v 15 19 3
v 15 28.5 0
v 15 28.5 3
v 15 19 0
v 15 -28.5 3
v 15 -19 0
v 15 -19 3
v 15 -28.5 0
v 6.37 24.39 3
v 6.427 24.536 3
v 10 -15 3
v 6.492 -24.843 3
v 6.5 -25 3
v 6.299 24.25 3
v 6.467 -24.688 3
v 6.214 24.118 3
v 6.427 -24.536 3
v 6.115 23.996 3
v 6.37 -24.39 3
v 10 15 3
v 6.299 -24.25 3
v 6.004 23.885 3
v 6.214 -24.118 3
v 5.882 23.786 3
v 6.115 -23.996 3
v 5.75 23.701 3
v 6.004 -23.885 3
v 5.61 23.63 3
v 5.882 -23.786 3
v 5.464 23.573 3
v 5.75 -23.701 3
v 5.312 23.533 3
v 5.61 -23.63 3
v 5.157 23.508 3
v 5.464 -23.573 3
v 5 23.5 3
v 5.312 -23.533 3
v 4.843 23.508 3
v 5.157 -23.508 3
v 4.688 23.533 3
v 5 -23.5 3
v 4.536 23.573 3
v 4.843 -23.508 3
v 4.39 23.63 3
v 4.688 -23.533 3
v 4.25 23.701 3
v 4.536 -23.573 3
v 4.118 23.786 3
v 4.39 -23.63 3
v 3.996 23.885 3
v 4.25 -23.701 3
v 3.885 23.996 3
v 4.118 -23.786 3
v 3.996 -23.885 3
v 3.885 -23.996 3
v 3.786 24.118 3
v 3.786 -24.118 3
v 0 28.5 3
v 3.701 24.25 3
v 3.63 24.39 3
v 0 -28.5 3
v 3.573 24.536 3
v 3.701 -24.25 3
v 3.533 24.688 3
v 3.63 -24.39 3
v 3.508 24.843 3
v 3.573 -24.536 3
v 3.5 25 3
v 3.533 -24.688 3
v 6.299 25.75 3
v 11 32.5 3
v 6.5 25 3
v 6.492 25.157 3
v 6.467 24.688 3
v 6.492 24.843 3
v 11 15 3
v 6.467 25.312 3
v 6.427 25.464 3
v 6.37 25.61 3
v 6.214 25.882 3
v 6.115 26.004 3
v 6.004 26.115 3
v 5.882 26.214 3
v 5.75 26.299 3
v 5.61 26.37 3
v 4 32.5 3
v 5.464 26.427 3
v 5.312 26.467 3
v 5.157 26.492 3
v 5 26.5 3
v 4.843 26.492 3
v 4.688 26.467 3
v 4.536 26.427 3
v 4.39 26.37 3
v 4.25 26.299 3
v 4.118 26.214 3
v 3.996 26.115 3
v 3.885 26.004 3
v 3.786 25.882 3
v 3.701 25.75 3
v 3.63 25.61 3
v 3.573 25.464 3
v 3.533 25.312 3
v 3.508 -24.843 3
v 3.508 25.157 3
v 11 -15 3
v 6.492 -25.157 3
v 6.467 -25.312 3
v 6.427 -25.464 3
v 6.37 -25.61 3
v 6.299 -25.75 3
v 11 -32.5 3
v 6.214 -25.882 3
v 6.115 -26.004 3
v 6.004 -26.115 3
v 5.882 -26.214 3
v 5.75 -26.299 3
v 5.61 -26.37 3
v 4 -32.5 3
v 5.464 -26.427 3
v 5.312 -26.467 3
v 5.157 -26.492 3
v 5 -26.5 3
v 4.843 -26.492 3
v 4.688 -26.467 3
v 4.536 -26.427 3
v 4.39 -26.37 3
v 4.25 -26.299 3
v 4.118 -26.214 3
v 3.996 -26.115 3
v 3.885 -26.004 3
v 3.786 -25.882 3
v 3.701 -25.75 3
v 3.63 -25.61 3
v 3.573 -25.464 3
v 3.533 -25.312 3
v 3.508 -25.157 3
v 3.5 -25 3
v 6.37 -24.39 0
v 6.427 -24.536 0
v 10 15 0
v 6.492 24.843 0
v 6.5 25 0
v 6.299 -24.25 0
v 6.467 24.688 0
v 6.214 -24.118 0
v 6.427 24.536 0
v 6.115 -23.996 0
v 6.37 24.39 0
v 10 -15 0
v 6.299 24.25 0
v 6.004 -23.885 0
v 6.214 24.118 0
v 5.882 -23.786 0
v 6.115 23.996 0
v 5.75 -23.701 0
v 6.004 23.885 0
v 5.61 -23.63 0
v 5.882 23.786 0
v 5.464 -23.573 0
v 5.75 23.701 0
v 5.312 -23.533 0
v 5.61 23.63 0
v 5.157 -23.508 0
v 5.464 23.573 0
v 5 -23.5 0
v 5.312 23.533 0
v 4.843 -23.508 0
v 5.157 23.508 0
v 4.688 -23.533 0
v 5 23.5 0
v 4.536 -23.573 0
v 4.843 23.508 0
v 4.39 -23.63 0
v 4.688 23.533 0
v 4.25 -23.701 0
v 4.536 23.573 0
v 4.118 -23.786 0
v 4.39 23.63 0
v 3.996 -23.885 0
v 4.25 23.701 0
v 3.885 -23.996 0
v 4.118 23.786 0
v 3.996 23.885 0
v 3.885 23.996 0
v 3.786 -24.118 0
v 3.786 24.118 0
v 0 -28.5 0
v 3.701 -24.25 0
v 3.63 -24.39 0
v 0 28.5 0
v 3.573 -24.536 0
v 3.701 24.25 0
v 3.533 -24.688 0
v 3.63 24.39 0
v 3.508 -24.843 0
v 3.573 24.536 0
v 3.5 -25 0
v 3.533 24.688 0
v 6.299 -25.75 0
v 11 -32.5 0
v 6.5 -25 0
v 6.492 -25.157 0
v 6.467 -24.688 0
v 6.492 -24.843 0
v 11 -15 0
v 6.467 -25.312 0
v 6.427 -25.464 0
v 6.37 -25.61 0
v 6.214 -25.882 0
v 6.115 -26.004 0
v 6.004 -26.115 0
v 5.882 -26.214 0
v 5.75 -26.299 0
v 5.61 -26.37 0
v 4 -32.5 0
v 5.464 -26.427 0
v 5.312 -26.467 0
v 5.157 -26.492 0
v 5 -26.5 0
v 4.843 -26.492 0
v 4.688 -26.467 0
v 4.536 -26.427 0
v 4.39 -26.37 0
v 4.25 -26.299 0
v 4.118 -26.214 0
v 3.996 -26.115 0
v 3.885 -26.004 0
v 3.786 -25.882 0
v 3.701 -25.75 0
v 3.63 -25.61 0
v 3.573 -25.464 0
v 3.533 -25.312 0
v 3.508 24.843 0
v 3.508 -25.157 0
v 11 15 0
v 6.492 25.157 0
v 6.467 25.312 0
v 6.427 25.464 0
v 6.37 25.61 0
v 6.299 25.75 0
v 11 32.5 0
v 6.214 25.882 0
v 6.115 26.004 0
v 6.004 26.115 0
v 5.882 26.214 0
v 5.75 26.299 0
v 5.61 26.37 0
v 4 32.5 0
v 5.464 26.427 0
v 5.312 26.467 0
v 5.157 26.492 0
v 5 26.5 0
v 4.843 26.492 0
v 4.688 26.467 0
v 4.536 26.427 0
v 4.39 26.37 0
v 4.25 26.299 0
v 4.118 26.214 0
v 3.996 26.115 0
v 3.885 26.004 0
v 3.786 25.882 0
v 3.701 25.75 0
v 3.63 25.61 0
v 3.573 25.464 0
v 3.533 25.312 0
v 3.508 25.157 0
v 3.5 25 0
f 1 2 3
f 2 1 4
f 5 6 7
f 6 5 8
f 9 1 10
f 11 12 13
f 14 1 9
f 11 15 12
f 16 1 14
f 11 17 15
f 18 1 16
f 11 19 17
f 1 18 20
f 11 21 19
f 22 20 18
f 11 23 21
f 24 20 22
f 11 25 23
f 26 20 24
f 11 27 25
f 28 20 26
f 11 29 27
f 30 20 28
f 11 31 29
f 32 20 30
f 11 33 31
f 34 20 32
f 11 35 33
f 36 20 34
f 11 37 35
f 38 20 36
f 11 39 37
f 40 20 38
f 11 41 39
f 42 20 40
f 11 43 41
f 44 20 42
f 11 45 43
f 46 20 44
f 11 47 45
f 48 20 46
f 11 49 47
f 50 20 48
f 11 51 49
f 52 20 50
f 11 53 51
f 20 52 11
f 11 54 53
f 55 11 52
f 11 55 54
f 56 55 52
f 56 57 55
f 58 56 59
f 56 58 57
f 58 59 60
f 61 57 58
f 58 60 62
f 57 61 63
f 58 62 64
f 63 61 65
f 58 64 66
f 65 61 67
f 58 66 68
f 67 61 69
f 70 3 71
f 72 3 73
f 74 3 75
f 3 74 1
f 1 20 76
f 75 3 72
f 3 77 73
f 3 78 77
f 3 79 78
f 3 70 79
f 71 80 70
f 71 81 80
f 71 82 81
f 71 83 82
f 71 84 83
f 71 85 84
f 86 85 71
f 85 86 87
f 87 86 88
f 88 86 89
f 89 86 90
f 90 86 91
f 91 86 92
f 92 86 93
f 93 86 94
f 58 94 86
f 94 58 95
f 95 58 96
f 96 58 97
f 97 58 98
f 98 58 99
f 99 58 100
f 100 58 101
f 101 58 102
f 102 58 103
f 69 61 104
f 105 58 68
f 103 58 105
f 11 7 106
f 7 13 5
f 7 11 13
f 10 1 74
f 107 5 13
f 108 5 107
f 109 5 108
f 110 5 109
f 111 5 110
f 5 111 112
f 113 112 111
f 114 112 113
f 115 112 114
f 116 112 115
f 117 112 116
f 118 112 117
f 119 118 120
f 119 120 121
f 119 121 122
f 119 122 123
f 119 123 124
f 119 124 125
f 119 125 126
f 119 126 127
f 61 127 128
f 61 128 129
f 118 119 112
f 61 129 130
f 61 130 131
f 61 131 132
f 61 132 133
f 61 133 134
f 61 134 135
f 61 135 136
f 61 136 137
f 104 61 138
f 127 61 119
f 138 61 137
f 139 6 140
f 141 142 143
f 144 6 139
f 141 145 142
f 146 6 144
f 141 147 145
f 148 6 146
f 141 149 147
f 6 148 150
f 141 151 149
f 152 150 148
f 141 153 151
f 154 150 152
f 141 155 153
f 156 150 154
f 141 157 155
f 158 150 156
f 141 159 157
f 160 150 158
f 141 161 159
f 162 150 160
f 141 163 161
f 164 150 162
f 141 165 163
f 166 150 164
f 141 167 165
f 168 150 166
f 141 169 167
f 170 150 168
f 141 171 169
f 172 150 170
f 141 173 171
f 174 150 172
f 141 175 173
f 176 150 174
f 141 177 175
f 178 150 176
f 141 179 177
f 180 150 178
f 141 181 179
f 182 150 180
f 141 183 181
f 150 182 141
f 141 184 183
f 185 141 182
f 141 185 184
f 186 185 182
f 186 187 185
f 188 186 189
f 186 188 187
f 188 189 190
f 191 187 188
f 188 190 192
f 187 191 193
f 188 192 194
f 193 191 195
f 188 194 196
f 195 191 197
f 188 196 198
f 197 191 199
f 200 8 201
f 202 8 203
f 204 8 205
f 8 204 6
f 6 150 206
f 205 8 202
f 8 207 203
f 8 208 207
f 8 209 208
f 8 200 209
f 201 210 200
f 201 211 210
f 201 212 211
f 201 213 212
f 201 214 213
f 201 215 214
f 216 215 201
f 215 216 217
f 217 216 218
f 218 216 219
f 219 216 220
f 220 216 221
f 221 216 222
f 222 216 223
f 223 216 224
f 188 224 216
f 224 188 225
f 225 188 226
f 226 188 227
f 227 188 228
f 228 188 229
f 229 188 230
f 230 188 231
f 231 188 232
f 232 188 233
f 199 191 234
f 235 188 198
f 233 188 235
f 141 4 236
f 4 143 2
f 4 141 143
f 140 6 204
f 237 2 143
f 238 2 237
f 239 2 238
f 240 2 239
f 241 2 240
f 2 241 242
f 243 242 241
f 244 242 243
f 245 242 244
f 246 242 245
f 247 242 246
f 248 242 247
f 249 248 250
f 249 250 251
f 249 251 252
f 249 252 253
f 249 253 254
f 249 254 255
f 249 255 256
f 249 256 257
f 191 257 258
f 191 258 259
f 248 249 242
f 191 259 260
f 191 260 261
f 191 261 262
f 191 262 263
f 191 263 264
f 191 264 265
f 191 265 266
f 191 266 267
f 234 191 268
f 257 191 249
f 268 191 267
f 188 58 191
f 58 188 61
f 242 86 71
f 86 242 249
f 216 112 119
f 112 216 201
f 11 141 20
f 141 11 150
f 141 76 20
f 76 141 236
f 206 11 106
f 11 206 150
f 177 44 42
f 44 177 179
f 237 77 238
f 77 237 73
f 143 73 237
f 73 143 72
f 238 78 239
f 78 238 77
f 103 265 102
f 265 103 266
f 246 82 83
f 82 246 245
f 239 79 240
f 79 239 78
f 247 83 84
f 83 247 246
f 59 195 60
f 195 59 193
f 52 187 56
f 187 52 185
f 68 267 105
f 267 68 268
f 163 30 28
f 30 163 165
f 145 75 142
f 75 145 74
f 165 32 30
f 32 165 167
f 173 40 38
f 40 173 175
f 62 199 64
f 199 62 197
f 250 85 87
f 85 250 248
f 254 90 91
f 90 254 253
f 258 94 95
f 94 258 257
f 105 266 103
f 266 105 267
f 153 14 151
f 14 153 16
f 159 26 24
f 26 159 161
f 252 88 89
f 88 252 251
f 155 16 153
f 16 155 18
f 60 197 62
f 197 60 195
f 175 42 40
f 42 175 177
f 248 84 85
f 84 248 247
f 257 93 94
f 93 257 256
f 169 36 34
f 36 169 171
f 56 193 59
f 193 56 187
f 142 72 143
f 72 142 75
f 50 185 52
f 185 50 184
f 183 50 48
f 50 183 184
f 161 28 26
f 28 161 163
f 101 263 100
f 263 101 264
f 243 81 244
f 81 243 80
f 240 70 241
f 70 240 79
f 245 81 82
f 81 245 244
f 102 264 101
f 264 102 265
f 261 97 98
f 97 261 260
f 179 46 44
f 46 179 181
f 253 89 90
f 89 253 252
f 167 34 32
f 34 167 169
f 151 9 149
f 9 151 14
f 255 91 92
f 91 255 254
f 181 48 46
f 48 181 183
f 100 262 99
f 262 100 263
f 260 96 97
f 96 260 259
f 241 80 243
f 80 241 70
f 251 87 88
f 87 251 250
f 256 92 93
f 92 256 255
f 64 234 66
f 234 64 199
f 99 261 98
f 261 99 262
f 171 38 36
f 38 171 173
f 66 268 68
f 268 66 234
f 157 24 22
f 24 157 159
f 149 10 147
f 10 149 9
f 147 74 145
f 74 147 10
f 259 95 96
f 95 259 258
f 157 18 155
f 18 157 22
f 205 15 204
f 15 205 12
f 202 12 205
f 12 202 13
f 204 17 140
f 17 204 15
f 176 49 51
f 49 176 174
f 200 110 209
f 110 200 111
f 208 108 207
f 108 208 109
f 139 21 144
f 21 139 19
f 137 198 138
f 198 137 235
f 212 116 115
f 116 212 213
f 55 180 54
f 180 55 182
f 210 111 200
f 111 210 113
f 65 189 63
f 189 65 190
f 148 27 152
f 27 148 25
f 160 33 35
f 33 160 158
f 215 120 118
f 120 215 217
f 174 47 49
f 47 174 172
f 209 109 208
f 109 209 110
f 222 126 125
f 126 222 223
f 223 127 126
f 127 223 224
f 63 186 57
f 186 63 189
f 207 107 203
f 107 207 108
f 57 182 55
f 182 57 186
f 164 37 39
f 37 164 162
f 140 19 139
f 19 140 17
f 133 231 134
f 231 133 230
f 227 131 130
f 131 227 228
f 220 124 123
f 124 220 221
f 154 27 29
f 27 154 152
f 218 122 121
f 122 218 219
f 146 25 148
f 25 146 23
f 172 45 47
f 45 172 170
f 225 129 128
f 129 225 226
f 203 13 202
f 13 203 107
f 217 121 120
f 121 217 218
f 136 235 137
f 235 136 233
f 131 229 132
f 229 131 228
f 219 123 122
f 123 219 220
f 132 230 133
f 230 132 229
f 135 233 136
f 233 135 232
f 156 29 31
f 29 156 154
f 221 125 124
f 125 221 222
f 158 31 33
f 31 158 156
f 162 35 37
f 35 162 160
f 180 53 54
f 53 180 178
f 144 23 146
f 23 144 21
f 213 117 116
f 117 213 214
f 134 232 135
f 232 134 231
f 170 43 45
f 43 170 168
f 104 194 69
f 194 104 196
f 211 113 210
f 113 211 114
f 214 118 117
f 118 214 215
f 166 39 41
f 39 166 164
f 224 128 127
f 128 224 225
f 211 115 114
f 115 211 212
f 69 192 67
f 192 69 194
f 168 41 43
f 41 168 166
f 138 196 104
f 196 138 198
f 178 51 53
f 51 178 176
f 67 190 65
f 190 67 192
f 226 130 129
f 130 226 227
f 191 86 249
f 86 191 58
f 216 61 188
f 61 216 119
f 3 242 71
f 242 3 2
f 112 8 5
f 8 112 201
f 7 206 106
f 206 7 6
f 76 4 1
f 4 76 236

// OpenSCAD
// file: modules.scad
module roof(l, w, h){
    polyhedron(
        points=[
            [0,0,0],
            [l,0,0],
            [l,w,0],
            [0,w,0],
            [0,w/2,h],
            [l,w/2,h]
            ],
        faces=[
            [0,1,2,3],
            [0,4,1],
            [1,4,5,2],
            [2,5,3],
            [3,5,4,0]
            ]
            );
    };

module wedge(l, w, h) {
    polyhedron(
            points=[
                [0,0,0],
                [l,0,0],
                [l,w,0],
                [0,w,0],
                [0,0,h],
                [l,0,h]
            ],
            faces=[
                [0,3,2,1],
                [0,1,5,4],
                [1,2,5],
                [2,3,4,5],
                [3,0,4]
            ]
    );
   };    
module tube(d1, d2, h) {
    difference() {
        cylinder(d=d1, h=h);
        cylinder(d=d2, h=h);
        };
    };

module countersunk_screw(vScrew_d, vScrew_l){
    union(){
    cylinder(d=vScrew_d, h= vScrew_l);
    cylinder(d1=vScrew_d*2, h=vScrew_d);
    };
};
// main file
// some variables
$fn = 60; // we are using 60 fragments for cylinders and similar objects

// some modules such as hex, countersunk screws, roof, wedge are available in a module file
use <modules.scad>;


// variables

vClampBase_l = 15;
vClampBase_w = 65;
vClampBase_h = 3;
vClampBase_offsetX = 0;
vClampBase_offsetY = -vClampBase_w/2;
vClampBase_offsetZ = 0;

vClampCutout_l = 5;
vClampCutout_w = 30;
vClampCutout_h = vClampBase_h;
vClampCutout_offsetX = 10;
vClampCutout_offsetY = -vClampCutout_w/2;
vClampCutout_offsetZ = 0;

vScrewHole_d = 3;
vScrewHole_h = vClampBase_h;
vScrewHole_offsetX = 5;
vScrewHole_offsetY = 25;
vScrewHole_offsetZ = 0;

vEdgeCut = 4;
vEdgeCut_h = vClampBase_h;
vEdgeCut_offsetX1 = 0;
vEdgeCut_offsetX2 = vClampBase_l;
vEdgeCut_offsetY1 = vClampBase_w/2;
vEdgeCut_offsetY2 = vClampCutout_w/2;
vEdgeCut_offsetZ = 0;



difference(){
    // base plate
    translate([vClampBase_offsetX, vClampBase_offsetY, vClampBase_offsetZ])
        cube([vClampBase_l, vClampBase_w, vClampBase_h]);
    
    // cutout
    translate([vClampCutout_offsetX, vClampCutout_offsetY, vClampCutout_offsetZ])
        cube([vClampCutout_l, vClampCutout_w, vClampCutout_h]);
    
    // screw holes
    translate([vScrewHole_offsetX, vScrewHole_offsetY, vScrewHole_offsetZ])
        cylinder(d=vScrewHole_d, h=vScrewHole_h);
    translate([vScrewHole_offsetX, -vScrewHole_offsetY, vScrewHole_offsetZ])
        cylinder(d=vScrewHole_d, h=vScrewHole_h);
    
    // edge cut
    translate([vEdgeCut_offsetX1, vEdgeCut_offsetY1, vEdgeCut_offsetZ])
        rotate([0, 270, 0])
            wedge(vEdgeCut_h, -vEdgeCut, -vEdgeCut);
    
    translate([vEdgeCut_offsetX1, -vEdgeCut_offsetY1, vEdgeCut_offsetZ])
        rotate([0, 270, 0])
            wedge(vEdgeCut_h, vEdgeCut, -vEdgeCut);
    
    translate([vEdgeCut_offsetX2, vEdgeCut_offsetY1, vEdgeCut_offsetZ])
        rotate([0, 270, 0])
            wedge(vEdgeCut_h, -vEdgeCut, vEdgeCut);
    
    translate([vEdgeCut_offsetX2, -vEdgeCut_offsetY1, vEdgeCut_offsetZ])
        rotate([0, 270, 0])
            wedge(vEdgeCut_h, vEdgeCut, vEdgeCut);
            
    translate([vEdgeCut_offsetX2, -vEdgeCut_offsetY2, vEdgeCut_offsetZ])
        rotate([0, 270, 0])
            wedge(vEdgeCut_h, -vEdgeCut, vEdgeCut);
    
    translate([vEdgeCut_offsetX2, vEdgeCut_offsetY2, vEdgeCut_offsetZ])
        rotate([0, 270, 0])
            wedge(vEdgeCut_h, vEdgeCut, vEdgeCut);        
    
}
